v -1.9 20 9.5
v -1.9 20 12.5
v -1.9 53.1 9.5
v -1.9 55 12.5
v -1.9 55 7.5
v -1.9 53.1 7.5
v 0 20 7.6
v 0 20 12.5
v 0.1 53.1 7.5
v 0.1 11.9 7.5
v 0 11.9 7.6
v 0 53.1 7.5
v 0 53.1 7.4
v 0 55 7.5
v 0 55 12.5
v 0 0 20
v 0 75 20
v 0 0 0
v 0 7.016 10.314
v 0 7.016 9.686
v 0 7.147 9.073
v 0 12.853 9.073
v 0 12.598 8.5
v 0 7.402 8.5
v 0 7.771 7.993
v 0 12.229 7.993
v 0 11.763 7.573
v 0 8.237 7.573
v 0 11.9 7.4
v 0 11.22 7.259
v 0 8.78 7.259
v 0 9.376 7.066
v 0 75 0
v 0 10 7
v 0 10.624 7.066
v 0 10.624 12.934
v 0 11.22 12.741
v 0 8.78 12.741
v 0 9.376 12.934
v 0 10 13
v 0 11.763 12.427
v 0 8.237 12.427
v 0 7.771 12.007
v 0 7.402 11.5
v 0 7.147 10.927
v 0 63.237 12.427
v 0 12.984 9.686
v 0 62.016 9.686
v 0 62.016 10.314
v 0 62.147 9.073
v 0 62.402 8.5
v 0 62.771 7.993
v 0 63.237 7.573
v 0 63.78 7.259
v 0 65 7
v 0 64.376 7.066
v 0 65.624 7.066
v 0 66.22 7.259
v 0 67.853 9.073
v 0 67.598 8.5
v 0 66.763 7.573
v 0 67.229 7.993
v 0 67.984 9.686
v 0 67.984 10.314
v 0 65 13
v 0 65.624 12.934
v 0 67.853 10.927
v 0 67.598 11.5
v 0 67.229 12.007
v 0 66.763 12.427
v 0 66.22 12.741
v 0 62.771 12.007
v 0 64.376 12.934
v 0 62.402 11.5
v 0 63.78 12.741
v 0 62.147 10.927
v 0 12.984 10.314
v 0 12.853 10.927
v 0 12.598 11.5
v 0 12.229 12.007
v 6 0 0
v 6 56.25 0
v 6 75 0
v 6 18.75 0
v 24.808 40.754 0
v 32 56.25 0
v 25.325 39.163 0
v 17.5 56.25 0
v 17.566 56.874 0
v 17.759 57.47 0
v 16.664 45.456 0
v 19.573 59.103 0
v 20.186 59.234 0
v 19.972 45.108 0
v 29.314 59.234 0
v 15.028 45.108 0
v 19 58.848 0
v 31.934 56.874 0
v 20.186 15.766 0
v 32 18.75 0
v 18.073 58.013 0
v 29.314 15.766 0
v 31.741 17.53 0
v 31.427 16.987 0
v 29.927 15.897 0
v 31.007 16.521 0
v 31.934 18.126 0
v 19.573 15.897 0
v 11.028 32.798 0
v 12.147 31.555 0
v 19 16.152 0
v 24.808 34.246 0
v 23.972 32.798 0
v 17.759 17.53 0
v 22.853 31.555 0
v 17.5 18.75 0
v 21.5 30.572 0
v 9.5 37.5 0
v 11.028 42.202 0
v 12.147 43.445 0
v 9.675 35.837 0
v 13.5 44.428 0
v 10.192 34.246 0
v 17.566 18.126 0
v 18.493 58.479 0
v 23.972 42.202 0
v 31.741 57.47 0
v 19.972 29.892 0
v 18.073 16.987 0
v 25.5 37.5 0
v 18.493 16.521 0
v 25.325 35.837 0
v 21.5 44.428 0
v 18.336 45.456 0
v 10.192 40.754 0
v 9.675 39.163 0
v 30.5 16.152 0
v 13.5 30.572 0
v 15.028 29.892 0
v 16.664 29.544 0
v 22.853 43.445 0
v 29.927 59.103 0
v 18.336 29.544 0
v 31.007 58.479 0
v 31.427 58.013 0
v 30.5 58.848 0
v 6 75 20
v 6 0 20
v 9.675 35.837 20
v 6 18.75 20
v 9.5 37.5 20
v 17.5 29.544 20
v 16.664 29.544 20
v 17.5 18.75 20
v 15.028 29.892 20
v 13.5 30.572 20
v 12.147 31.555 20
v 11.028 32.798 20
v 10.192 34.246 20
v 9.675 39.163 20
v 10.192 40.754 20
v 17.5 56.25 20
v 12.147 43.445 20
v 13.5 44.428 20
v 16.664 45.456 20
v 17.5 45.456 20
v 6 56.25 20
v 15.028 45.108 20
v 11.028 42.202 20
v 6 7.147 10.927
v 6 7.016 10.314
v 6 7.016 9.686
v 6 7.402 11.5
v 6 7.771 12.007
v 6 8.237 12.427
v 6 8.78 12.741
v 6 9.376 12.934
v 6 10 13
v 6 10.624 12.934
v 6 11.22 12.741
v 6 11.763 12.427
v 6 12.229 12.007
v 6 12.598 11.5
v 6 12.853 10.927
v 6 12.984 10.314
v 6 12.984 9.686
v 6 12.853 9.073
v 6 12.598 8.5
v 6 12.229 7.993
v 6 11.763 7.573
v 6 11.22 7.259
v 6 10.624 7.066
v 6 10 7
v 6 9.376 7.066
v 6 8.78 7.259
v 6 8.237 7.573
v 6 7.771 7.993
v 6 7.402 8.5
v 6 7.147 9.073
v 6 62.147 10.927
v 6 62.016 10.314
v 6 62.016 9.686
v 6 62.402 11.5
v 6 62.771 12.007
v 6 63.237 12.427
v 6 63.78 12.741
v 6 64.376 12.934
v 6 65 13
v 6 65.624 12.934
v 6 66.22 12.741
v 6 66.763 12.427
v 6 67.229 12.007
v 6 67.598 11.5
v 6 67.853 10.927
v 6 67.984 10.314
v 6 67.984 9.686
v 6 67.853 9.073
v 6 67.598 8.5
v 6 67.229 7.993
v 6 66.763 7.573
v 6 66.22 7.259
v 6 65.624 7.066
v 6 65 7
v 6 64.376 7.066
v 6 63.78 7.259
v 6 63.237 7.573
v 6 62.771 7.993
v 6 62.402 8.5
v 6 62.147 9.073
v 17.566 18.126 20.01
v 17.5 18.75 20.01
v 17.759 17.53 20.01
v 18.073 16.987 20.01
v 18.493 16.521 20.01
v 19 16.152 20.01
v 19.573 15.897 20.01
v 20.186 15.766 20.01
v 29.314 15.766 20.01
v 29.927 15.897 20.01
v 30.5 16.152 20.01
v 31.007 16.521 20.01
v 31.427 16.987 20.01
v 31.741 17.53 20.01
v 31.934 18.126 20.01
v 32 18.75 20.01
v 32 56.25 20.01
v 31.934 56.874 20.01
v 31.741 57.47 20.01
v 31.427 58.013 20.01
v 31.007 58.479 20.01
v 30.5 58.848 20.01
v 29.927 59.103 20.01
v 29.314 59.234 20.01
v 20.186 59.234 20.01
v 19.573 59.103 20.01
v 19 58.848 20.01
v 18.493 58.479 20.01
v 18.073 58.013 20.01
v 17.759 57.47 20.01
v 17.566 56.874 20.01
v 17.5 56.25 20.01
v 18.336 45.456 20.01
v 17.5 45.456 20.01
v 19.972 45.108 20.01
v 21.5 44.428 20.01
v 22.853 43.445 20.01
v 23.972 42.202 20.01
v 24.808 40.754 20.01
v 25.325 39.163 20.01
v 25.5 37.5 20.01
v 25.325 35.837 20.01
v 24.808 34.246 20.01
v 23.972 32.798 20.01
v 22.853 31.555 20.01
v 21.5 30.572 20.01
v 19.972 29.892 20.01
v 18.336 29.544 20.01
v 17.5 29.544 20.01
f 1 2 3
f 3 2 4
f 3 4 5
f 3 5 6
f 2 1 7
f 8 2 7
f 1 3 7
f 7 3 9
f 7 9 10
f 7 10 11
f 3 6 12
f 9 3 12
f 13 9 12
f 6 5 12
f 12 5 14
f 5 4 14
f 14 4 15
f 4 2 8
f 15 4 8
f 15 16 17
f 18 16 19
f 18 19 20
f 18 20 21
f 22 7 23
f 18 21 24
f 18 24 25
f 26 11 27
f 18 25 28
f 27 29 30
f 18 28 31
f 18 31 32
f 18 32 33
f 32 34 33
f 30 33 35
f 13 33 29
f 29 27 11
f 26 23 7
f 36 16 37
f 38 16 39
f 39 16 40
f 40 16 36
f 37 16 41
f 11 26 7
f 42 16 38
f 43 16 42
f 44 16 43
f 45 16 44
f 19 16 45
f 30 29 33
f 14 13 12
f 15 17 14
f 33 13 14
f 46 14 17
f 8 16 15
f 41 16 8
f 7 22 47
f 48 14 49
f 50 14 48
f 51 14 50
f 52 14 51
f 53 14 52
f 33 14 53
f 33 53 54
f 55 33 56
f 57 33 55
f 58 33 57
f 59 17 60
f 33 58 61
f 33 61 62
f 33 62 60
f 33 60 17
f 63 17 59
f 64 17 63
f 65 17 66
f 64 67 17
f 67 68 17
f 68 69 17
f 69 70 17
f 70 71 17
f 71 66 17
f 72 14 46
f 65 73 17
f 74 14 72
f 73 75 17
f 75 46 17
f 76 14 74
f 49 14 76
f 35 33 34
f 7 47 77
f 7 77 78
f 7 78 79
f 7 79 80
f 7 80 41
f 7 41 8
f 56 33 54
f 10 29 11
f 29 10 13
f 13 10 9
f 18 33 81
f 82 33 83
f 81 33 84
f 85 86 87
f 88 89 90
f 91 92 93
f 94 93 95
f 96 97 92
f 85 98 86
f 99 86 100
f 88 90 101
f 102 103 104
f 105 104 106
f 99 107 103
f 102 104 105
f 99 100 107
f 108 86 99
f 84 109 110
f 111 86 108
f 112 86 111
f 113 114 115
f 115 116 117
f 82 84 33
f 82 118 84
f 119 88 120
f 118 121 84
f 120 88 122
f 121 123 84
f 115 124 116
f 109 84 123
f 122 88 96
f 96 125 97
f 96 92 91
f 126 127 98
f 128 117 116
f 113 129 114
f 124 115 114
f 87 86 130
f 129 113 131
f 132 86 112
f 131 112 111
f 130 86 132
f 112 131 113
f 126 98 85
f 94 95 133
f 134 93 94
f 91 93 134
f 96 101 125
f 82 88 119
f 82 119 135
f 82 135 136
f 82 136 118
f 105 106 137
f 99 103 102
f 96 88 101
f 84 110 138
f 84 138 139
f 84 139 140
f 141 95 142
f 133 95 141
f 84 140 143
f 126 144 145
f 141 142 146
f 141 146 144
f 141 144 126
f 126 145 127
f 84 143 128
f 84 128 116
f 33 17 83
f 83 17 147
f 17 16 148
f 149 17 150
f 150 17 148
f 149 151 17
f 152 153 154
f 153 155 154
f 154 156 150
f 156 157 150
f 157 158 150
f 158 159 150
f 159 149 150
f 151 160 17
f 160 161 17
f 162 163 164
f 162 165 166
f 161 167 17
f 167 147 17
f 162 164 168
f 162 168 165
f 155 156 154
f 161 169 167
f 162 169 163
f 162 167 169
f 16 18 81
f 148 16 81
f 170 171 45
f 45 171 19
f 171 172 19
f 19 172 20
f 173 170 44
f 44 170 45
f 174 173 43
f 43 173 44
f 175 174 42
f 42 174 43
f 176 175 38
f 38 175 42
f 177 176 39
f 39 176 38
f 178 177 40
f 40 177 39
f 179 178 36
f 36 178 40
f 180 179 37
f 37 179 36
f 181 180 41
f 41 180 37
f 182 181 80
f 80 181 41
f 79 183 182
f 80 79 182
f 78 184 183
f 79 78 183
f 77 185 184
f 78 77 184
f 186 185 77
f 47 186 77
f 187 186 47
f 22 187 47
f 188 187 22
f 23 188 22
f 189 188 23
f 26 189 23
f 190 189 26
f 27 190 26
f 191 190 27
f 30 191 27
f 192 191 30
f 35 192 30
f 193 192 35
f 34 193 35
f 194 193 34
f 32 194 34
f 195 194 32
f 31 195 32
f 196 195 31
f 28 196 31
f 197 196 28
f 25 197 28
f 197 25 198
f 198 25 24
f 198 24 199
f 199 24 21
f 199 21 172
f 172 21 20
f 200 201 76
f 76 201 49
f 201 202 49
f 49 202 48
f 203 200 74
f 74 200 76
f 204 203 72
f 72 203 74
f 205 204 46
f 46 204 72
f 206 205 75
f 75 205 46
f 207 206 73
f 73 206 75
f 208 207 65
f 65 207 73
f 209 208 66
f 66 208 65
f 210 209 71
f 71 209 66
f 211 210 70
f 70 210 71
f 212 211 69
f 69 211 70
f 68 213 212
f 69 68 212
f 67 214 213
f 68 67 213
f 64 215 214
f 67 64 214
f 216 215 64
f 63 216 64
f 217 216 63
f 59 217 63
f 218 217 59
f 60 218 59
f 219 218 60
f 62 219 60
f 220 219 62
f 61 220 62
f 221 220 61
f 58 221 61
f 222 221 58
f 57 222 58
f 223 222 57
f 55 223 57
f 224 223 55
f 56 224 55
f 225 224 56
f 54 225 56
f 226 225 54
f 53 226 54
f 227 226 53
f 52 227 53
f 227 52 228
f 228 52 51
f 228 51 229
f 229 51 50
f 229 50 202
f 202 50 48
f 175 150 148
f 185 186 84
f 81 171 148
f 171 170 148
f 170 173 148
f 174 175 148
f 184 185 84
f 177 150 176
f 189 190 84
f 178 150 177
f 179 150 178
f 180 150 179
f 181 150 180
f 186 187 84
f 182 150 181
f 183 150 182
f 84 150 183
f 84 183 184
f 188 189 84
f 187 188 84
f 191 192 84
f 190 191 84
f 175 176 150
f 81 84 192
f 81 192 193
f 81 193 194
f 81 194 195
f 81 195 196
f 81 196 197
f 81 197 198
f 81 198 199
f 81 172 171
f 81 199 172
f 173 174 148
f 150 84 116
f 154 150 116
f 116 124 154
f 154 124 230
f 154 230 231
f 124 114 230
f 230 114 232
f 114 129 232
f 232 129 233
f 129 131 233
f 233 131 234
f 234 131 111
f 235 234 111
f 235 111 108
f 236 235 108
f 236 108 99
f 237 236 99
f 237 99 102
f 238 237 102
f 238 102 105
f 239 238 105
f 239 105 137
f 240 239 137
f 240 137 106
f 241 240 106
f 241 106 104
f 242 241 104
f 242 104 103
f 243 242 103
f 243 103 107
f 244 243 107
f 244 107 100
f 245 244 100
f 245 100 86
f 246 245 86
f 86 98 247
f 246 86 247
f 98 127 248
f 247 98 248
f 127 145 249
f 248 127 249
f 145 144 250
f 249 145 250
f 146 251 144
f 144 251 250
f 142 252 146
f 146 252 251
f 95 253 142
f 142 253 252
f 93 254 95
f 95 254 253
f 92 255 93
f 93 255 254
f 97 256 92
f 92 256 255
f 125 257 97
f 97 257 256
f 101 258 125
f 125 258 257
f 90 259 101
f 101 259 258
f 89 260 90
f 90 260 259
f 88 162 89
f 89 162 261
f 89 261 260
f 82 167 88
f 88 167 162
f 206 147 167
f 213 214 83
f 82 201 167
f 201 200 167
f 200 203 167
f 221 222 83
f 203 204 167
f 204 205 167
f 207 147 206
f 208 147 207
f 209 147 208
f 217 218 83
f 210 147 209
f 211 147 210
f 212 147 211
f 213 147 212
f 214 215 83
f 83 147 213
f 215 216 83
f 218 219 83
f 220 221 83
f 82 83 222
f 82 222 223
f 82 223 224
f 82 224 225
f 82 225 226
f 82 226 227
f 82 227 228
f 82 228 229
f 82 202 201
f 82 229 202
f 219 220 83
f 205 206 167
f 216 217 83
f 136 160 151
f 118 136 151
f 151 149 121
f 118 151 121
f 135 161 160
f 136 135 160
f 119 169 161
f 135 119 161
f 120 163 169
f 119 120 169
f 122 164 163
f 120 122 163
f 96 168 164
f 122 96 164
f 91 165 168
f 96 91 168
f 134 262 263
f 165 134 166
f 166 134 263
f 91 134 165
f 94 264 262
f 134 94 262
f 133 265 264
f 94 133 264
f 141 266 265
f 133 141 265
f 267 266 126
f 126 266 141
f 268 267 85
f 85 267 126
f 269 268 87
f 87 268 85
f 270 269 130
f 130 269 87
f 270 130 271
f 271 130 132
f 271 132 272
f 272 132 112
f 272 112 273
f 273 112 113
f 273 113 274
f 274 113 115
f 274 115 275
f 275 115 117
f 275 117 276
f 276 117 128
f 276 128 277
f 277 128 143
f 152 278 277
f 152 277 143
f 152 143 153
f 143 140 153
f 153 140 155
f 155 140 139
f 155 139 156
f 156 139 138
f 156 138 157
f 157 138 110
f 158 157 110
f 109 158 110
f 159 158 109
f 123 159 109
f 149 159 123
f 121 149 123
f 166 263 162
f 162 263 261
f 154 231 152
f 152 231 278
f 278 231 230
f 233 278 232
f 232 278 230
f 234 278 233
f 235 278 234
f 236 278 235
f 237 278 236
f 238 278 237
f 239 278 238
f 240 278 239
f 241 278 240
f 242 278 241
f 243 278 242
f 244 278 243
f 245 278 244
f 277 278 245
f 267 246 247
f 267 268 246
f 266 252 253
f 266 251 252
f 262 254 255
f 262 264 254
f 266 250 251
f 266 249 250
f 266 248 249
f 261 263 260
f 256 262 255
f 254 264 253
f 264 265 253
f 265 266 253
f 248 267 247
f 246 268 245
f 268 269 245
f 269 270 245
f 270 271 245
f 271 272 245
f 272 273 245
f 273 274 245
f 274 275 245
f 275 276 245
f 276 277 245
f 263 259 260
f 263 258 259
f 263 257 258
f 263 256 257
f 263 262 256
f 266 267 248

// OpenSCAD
// file: functions.scad
// PRUSA Mendel  
// Functions used in many files
// GNU GPL v2
// Josef Průša
// josefprusa@me.com
// prusadjs.cz
// http://www.reprap.org/wiki/Prusa_Mendel
// http://github.com/prusajr/PrusaMendel

module nut(d,h,horizontal=true){
cornerdiameter =  (d / 2) / cos (180 / 6);
cylinder(h = h, r = cornerdiameter, $fn = 6);
if(horizontal){
for(i = [1:6]){
	rotate([0,0,60*i]) translate([-cornerdiameter-0.2,0,0]) rotate([0,0,-45]) cube(size = [2,2,h]);
}}
}

// By nophead
module polyhole(d,h) {
    n = max(round(2 * d),3);
    rotate([0,0,180])
        cylinder(h = h, r = (d / 2) / cos (180 / n), $fn = n);
}

module roundcorner(diameter){
	difference(){
		cube(size = [diameter,diameter,99], center = false);
		translate(v = [diameter, diameter, 0]) cylinder(h = 100, r=diameter, center=true);
	}
}
// file: metric.scad
// PRUSA Mendel  
// Default metric sizes
// GNU GPL v2
// Josef Průša
// josefprusa@me.com
// prusadjs.cz
// http://www.reprap.org/wiki/Prusa_Mendel
// http://github.com/prusajr/PrusaMendel

// DONT CHANGE THIS FILE! ALTER VALUES IN CONFIGURATION.SCAD INSTEAD

// RODS

threaded_rod_diameter = 8;
threaded_rod_diameter_horizontal = 8;
smooth_bar_diameter = 8;
smooth_bar_diameter_horizontal = 8;

// Nuts and bolts

m8_diameter = 8;
m8_nut_diameter = 14.5;

m4_diameter = 4;
m4_nut_diameter = 7.5;

m3_diameter = 3;
m3_nut_diameter = 5;

// Bushing holder

bushing_core_diameter = smooth_bar_diameter;
bushing_material_thickness = 1;

// Motors

motor_shaft = 5.1;
// file: configuration.scad
// PRUSA Mendel  
// Configuration file
// GNU GPL v2
// Josef Průša
// josefprusa@me.com
// prusadjs.cz
// http://www.reprap.org/wiki/Prusa_Mendel
// http://github.com/prusajr/PrusaMendel

// PLEASE SELECT ONE OF THE CONFIGURATIONS BELOW
// BY UN-COMMENTING IT

// Uncomment for metric settings
// METRIC METRIC METRIC METRIC METRIC METRIC METRIC METRIC 

include <metric.scad>;

// Uncomment for imperial settings
// IMPERIAL IMPERIAL IMPERIAL IMPERIAL IMPERIAL IMPERIAL IMPERIAL 

//include <sae.scad>;

//thin_wall = 3;
// LM8UU
//linear = false;

// override settings by customizing below
// CUSTOM CUSTOM CUSTOM CUSTOM CUSTOM CUSTOM CUSTOM CUSTOM CUSTOM

threaded_rod_diameter = 8.2;
threaded_rod_diameter_horizontal = 8.2;
smooth_bar_diameter = 8.3;
smooth_bar_diameter_horizontal = 8.3;

// Nuts and bolts

m8_diameter = 8.3;
m8_nut_diameter = 15;

m4_diameter = 4.2;
m4_nut_diameter = 9;

m3_diameter = 3.3;
m3_nut_diameter = 5.8;

///counted stuff
m3_nut_diameter_bigger = ((m3_nut_diameter  / 2) / cos (180 / 6))*2;

// functions 
include <functions.scad>
// main file
// M8 Y-axes holders for Prism Mendel
// by Terawatt Industries
// author Free Beachler

include <configuration.scad>;

// PARAMETERS
extrusion_width = 20;
holder_height = 35;
holder_width = 75;
mnt_base_thickness = 6;	// need clearance for M4 screws to tnut
overlap = 0.1;			// amount to overlap aluminum t-extrusion
slot_tab_depth = 2;
slot_tab_length = 35;
rod_radius = 8;
roundness = 3;

m4_screw_dia = m4_diameter;

// CALCULATIONS
rod_center_offset_vert = -mnt_base_thickness / 2;			// vertical offset from center in holder

// RENDER
$fn=30;

translate([0,0,0]) yrodsupport(holder_height, holder_width, mnt_base_thickness, overlap, slot_tab_depth, rod_radius, rod_center_offset_vert);

module yrodsupport(yh, yw, ybt,yo,ystd,yrd,yrcov) 
{
	rodsupport(yh, yw, ybt,yo,ystd,yrd,yrcov);
	base(yh,yw, ybt,yo,ystd,yrd,yrcov);
}

module base(yh, yw, ybt, yo, ystd, yrd, yrcov)
{
	difference()
	{
		union()
		{
			translate([0,0,0]) cube([ybt, yw, extrusion_width]);
			translate([-ystd + yo, (yw - slot_tab_length) / 2, 7.5]) cube([ystd + 2 * yo, slot_tab_length, 5]);
		}
		translate([yo, 12 - yo, 7.5]) rotate([0,-45,0]) 
			mirror([1,0,0]) cube([ystd + 2 * yo, 41 + 2 * yo, 5]);
		// TODO parametrize hole distance from endz
		translate([-yo, 10, 10]) rotate([0, 90, 0]) cylinder(r=ybt / 2, h=ybt + 2 * yo);
		translate([-yo, yw - 10,10]) rotate([0,90,0]) cylinder(r=ybt/2, h=ybt + 2 * yo);
	}
}

module rodsupport(yh, yw, ybt, yo, ystd, yrd, yrcov)
{
	difference()
	{
		union()
		{
			translate([ybt, yw / 4, 0]) cube([(yh - ybt) / 2, yw / 2, extrusion_width]);
		minkowski() {
			translate([(yh - ybt) / 2 + ybt, yw / 4, 0]) cube([(yh - ybt) / 2 - roundness * 2, yw / 2, extrusion_width]);
			translate([0, 0, 0]) cylinder(r=roundness,h=0.01);
		}
		}
		translate([ybt + (yh - ybt) / 2 + yrcov, yw / 2, -yo]) cylinder(r=yrd,h=extrusion_width + 2 * yo);
	}

}
